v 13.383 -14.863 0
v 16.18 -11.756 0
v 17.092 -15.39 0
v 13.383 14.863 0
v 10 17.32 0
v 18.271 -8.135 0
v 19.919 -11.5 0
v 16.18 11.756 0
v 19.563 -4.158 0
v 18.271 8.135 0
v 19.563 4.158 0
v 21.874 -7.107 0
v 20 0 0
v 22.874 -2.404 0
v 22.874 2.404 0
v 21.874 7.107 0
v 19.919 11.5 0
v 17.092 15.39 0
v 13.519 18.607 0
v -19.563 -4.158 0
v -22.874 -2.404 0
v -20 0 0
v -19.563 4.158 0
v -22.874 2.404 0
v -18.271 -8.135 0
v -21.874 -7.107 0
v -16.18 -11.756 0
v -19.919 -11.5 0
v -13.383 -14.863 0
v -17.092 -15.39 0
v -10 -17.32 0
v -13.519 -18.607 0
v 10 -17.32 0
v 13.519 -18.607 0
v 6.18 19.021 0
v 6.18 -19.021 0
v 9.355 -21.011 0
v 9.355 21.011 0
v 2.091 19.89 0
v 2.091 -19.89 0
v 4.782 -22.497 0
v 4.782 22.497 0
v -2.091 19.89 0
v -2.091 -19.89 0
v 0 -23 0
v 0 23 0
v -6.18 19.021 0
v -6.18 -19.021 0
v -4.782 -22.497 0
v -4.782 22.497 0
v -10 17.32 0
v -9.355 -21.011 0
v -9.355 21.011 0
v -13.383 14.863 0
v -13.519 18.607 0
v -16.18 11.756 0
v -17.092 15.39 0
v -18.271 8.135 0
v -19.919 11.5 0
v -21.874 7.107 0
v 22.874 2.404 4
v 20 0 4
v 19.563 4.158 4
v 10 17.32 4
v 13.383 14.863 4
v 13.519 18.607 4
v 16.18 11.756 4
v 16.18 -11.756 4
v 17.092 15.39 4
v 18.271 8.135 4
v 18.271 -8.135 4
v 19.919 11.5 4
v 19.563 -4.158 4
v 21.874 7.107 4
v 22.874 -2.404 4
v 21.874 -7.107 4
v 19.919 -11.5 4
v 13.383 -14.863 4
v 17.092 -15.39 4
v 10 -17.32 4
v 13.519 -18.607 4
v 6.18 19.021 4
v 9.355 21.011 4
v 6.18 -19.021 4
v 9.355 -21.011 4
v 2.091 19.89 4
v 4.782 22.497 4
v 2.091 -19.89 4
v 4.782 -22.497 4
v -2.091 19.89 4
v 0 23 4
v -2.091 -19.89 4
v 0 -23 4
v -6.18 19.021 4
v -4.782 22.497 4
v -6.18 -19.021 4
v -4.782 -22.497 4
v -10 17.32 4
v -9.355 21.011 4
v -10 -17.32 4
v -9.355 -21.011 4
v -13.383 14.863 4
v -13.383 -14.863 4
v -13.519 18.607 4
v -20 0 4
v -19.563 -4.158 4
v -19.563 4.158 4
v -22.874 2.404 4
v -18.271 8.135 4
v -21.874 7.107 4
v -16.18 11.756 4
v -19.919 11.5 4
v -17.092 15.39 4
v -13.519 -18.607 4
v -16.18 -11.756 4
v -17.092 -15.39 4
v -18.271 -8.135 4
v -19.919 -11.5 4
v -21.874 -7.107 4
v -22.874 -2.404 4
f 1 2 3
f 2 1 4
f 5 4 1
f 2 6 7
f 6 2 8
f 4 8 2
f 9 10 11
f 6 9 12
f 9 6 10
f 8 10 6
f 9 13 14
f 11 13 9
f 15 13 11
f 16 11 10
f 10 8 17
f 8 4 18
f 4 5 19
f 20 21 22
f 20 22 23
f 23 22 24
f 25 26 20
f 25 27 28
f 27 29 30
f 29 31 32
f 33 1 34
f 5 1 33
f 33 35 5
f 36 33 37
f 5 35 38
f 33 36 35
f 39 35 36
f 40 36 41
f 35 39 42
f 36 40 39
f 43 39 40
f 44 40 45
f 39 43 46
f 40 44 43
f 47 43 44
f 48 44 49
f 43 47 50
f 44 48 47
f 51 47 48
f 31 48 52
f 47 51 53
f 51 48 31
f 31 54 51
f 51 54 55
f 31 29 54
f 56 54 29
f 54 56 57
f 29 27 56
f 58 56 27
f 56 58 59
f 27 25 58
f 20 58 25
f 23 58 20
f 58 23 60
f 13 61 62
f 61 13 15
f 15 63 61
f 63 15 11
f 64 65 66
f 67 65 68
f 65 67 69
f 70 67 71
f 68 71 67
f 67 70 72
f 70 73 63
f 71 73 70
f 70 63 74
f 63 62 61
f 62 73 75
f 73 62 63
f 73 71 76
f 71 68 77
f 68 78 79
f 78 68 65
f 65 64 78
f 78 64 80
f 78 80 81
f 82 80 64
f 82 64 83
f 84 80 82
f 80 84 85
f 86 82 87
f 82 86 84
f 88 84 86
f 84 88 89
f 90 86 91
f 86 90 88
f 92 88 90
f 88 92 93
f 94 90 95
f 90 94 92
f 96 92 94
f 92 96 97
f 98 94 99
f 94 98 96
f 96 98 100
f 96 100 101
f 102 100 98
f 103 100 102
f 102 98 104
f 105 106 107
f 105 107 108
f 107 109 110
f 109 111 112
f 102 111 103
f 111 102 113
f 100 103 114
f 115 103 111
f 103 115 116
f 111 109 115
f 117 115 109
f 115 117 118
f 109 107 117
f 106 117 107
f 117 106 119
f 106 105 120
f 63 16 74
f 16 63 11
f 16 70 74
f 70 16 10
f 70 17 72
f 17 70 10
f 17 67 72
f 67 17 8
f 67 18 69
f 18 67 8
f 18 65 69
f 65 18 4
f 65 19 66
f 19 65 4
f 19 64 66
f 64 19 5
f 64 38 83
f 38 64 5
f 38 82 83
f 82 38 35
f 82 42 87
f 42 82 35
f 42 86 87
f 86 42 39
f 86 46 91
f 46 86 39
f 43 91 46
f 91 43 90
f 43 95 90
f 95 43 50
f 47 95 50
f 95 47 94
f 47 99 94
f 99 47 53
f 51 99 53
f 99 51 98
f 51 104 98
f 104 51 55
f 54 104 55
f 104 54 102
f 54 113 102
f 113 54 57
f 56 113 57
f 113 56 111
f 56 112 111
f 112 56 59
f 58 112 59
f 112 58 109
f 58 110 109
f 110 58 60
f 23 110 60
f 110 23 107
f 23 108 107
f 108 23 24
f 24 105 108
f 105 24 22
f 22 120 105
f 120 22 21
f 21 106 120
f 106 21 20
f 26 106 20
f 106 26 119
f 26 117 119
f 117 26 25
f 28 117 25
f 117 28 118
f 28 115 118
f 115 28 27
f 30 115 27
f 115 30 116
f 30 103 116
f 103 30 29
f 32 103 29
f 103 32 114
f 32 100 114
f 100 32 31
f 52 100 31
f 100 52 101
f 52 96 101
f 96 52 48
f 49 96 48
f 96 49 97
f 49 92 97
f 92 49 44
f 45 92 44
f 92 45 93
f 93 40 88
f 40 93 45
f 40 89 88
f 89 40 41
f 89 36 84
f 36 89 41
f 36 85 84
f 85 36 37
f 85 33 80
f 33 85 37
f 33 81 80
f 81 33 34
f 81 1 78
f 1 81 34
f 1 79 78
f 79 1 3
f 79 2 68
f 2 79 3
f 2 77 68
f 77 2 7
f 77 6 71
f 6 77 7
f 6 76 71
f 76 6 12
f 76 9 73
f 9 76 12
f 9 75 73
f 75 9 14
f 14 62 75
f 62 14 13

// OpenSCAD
module gear(height, radius, teeth_depth, teeth=30) {
	cylinder(h=height, r=radius, $fn=teeth);
	for(tooth = [0:teeth]) {
		rotate([0, 0, tooth * 360 / teeth]) {
			linear_extrude(height=height) {
				polygon(points=[[radius, 0], [cos(360 / teeth) * radius, sin(360 / teeth) * radius], [cos(180 / teeth) * (radius + teeth_depth), sin(180 / teeth) * (radius + teeth_depth)]], convexity=1);
			}
		}
	}
}

gear(height=4, radius=20, teeth_depth=3);
